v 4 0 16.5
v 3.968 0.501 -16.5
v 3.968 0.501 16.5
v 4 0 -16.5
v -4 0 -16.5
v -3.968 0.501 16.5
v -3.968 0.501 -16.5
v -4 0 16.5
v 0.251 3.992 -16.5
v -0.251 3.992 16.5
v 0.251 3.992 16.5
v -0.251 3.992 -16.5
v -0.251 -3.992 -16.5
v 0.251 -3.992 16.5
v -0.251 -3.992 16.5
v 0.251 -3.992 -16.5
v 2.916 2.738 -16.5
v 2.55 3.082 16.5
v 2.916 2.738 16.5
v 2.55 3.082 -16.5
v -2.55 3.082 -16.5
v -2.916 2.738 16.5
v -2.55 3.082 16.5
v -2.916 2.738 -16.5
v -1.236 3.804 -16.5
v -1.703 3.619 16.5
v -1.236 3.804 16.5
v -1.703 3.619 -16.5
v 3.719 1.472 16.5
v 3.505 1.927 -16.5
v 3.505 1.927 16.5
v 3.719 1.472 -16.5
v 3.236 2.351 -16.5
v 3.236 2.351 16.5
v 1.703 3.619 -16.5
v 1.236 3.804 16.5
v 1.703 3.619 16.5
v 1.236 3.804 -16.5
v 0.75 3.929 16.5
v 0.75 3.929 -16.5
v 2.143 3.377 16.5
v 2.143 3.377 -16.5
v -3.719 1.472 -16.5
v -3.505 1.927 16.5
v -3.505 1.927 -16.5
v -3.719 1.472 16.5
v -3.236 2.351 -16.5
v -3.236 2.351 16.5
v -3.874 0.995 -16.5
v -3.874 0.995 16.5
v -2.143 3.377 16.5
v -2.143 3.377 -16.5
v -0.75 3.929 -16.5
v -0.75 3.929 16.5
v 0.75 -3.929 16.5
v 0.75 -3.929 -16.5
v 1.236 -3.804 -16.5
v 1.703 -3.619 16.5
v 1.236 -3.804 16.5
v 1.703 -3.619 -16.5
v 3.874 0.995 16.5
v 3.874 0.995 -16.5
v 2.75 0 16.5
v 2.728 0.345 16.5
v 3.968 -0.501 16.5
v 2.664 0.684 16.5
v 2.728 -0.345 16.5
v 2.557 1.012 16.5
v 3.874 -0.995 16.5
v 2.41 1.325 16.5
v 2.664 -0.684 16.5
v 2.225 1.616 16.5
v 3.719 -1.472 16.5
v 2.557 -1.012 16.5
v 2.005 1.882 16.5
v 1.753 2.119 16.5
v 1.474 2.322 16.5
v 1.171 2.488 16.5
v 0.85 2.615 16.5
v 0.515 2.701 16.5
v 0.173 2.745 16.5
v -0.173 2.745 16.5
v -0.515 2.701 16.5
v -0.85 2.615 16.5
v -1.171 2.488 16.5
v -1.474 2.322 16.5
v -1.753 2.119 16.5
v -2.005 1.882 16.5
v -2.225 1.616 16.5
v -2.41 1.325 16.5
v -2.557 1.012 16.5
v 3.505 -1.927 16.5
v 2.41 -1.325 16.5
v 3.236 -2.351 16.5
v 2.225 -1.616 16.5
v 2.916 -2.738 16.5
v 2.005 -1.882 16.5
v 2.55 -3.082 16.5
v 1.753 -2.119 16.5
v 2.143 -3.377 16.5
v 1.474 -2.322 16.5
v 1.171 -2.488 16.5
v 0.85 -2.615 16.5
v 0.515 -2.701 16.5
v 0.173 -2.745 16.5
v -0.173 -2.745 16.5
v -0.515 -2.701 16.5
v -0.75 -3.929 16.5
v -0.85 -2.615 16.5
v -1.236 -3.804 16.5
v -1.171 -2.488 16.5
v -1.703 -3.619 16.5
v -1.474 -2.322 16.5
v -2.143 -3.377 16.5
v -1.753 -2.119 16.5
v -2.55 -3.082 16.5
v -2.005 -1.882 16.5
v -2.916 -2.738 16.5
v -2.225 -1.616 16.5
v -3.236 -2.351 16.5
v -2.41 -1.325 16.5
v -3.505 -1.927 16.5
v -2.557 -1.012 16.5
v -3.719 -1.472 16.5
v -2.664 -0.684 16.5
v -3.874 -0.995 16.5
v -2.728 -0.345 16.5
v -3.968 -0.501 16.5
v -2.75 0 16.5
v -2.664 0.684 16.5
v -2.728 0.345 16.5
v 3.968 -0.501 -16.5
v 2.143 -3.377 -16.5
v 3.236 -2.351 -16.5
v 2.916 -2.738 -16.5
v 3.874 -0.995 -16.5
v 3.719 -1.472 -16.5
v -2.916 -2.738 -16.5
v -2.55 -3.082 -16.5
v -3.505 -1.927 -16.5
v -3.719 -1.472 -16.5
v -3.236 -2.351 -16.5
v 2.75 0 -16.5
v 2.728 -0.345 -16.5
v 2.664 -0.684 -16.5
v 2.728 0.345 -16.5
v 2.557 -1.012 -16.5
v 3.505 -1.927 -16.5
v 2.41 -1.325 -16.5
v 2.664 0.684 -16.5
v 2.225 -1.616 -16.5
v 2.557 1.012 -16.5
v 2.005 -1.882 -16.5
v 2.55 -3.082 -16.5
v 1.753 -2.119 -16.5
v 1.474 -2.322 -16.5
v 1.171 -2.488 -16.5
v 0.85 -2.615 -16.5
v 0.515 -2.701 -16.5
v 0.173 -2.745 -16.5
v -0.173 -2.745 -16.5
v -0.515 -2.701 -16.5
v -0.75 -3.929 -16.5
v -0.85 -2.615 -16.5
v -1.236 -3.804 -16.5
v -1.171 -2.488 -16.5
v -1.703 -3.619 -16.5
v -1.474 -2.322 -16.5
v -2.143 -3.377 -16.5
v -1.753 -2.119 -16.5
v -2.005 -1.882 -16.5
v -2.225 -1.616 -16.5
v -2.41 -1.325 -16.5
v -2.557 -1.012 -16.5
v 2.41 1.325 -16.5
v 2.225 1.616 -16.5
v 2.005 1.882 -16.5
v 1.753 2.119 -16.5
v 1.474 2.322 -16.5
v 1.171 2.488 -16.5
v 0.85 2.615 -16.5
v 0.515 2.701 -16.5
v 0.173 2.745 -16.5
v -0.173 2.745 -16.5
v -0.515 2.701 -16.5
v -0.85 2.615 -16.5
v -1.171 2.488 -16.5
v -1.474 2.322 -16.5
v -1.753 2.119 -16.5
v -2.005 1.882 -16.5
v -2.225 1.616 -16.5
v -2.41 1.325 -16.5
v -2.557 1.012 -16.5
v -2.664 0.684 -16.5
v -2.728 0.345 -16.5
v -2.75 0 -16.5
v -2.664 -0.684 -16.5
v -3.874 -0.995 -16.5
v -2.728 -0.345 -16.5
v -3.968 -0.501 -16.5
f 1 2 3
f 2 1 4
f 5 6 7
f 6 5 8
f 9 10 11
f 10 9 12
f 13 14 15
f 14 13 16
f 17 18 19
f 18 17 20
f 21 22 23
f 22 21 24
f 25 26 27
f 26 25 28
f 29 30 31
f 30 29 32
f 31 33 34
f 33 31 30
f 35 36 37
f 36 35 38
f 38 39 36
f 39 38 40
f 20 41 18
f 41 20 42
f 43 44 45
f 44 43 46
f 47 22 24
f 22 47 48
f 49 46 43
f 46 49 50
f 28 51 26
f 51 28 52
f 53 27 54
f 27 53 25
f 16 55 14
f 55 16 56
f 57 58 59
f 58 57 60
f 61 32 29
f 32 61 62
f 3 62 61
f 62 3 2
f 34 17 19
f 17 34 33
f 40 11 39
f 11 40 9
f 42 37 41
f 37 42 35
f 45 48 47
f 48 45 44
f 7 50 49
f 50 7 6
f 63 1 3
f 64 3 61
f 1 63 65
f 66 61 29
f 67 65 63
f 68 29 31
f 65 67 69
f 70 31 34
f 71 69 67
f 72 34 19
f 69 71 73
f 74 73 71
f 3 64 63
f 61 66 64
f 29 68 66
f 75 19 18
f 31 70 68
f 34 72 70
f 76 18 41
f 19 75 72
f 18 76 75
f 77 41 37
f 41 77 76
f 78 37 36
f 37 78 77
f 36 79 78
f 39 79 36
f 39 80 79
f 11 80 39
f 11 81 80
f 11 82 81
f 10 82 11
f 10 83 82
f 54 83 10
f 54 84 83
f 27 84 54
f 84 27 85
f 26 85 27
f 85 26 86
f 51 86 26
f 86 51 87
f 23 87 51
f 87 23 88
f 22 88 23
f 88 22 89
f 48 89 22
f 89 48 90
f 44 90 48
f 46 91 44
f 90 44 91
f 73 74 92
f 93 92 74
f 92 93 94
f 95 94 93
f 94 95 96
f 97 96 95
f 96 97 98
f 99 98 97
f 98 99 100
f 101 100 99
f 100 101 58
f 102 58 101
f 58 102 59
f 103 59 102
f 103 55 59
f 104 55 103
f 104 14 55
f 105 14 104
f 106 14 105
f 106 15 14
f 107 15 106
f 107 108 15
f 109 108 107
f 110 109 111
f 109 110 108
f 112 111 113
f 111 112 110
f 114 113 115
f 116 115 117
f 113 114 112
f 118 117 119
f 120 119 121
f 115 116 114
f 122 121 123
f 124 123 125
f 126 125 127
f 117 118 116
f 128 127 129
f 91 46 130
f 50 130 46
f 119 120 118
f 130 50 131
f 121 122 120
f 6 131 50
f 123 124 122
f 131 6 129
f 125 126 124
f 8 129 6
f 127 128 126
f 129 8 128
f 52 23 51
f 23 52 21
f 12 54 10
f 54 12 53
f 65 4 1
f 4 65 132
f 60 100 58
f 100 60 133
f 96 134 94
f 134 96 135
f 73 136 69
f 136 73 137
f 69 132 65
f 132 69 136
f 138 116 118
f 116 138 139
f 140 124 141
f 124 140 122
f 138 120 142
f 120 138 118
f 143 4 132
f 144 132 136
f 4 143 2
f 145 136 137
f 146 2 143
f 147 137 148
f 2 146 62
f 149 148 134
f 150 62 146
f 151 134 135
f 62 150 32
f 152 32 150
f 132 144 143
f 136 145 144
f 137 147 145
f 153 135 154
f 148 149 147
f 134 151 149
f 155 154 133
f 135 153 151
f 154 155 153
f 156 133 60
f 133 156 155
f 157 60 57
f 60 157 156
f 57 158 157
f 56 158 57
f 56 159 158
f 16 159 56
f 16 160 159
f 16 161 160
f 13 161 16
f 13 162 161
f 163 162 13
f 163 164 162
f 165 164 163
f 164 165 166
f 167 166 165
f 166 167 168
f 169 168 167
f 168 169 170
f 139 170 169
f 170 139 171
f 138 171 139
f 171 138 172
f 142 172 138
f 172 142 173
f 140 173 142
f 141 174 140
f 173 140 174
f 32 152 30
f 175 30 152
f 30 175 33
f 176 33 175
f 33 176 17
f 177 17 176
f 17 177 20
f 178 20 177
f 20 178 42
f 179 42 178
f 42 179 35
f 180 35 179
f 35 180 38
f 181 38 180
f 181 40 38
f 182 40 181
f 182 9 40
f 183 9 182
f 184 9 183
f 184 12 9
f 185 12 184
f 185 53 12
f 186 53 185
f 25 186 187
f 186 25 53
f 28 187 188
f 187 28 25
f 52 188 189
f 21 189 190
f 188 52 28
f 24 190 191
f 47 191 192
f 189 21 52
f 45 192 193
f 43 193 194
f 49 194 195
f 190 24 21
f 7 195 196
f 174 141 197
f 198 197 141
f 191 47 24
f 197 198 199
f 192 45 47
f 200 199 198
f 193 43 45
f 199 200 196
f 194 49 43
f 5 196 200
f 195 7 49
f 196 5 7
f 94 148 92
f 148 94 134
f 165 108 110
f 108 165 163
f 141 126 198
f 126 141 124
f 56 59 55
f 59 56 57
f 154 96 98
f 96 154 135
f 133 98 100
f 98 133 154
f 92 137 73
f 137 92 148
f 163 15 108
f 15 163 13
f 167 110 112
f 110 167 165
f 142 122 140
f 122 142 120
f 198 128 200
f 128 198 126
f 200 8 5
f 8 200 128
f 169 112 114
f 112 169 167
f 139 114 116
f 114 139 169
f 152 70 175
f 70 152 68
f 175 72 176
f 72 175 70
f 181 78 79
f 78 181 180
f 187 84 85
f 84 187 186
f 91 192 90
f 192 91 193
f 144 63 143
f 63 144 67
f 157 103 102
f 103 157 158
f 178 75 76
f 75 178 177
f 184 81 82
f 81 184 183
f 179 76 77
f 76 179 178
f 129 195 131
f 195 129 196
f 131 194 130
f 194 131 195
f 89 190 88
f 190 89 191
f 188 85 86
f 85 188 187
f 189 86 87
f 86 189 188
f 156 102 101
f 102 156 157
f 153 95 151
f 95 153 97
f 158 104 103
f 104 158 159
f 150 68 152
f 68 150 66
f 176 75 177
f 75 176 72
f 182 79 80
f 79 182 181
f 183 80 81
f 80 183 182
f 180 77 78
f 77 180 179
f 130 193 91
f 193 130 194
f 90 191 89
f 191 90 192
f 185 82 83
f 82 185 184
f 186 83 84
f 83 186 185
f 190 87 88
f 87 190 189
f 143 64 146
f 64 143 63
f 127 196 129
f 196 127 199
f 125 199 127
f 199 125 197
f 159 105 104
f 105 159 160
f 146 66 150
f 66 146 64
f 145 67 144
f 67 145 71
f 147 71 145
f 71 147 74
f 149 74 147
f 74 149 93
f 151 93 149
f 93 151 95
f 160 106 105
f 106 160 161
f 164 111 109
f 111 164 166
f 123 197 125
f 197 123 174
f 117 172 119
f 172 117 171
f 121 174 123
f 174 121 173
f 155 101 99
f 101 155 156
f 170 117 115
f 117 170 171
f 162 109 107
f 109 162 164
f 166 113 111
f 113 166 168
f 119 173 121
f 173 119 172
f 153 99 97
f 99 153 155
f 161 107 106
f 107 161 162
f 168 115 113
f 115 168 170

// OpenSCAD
$fn = 50;


difference() {
	union() {
		translate(v = [0, 0, -16.5000000000]) {
			cylinder(h = 33, r = 4.0000000000);
		}
	}
	union() {
		translate(v = [0, 0, -100.0000000000]) {
			cylinder(h = 200, r = 2.7500000000);
		}
	}
}
